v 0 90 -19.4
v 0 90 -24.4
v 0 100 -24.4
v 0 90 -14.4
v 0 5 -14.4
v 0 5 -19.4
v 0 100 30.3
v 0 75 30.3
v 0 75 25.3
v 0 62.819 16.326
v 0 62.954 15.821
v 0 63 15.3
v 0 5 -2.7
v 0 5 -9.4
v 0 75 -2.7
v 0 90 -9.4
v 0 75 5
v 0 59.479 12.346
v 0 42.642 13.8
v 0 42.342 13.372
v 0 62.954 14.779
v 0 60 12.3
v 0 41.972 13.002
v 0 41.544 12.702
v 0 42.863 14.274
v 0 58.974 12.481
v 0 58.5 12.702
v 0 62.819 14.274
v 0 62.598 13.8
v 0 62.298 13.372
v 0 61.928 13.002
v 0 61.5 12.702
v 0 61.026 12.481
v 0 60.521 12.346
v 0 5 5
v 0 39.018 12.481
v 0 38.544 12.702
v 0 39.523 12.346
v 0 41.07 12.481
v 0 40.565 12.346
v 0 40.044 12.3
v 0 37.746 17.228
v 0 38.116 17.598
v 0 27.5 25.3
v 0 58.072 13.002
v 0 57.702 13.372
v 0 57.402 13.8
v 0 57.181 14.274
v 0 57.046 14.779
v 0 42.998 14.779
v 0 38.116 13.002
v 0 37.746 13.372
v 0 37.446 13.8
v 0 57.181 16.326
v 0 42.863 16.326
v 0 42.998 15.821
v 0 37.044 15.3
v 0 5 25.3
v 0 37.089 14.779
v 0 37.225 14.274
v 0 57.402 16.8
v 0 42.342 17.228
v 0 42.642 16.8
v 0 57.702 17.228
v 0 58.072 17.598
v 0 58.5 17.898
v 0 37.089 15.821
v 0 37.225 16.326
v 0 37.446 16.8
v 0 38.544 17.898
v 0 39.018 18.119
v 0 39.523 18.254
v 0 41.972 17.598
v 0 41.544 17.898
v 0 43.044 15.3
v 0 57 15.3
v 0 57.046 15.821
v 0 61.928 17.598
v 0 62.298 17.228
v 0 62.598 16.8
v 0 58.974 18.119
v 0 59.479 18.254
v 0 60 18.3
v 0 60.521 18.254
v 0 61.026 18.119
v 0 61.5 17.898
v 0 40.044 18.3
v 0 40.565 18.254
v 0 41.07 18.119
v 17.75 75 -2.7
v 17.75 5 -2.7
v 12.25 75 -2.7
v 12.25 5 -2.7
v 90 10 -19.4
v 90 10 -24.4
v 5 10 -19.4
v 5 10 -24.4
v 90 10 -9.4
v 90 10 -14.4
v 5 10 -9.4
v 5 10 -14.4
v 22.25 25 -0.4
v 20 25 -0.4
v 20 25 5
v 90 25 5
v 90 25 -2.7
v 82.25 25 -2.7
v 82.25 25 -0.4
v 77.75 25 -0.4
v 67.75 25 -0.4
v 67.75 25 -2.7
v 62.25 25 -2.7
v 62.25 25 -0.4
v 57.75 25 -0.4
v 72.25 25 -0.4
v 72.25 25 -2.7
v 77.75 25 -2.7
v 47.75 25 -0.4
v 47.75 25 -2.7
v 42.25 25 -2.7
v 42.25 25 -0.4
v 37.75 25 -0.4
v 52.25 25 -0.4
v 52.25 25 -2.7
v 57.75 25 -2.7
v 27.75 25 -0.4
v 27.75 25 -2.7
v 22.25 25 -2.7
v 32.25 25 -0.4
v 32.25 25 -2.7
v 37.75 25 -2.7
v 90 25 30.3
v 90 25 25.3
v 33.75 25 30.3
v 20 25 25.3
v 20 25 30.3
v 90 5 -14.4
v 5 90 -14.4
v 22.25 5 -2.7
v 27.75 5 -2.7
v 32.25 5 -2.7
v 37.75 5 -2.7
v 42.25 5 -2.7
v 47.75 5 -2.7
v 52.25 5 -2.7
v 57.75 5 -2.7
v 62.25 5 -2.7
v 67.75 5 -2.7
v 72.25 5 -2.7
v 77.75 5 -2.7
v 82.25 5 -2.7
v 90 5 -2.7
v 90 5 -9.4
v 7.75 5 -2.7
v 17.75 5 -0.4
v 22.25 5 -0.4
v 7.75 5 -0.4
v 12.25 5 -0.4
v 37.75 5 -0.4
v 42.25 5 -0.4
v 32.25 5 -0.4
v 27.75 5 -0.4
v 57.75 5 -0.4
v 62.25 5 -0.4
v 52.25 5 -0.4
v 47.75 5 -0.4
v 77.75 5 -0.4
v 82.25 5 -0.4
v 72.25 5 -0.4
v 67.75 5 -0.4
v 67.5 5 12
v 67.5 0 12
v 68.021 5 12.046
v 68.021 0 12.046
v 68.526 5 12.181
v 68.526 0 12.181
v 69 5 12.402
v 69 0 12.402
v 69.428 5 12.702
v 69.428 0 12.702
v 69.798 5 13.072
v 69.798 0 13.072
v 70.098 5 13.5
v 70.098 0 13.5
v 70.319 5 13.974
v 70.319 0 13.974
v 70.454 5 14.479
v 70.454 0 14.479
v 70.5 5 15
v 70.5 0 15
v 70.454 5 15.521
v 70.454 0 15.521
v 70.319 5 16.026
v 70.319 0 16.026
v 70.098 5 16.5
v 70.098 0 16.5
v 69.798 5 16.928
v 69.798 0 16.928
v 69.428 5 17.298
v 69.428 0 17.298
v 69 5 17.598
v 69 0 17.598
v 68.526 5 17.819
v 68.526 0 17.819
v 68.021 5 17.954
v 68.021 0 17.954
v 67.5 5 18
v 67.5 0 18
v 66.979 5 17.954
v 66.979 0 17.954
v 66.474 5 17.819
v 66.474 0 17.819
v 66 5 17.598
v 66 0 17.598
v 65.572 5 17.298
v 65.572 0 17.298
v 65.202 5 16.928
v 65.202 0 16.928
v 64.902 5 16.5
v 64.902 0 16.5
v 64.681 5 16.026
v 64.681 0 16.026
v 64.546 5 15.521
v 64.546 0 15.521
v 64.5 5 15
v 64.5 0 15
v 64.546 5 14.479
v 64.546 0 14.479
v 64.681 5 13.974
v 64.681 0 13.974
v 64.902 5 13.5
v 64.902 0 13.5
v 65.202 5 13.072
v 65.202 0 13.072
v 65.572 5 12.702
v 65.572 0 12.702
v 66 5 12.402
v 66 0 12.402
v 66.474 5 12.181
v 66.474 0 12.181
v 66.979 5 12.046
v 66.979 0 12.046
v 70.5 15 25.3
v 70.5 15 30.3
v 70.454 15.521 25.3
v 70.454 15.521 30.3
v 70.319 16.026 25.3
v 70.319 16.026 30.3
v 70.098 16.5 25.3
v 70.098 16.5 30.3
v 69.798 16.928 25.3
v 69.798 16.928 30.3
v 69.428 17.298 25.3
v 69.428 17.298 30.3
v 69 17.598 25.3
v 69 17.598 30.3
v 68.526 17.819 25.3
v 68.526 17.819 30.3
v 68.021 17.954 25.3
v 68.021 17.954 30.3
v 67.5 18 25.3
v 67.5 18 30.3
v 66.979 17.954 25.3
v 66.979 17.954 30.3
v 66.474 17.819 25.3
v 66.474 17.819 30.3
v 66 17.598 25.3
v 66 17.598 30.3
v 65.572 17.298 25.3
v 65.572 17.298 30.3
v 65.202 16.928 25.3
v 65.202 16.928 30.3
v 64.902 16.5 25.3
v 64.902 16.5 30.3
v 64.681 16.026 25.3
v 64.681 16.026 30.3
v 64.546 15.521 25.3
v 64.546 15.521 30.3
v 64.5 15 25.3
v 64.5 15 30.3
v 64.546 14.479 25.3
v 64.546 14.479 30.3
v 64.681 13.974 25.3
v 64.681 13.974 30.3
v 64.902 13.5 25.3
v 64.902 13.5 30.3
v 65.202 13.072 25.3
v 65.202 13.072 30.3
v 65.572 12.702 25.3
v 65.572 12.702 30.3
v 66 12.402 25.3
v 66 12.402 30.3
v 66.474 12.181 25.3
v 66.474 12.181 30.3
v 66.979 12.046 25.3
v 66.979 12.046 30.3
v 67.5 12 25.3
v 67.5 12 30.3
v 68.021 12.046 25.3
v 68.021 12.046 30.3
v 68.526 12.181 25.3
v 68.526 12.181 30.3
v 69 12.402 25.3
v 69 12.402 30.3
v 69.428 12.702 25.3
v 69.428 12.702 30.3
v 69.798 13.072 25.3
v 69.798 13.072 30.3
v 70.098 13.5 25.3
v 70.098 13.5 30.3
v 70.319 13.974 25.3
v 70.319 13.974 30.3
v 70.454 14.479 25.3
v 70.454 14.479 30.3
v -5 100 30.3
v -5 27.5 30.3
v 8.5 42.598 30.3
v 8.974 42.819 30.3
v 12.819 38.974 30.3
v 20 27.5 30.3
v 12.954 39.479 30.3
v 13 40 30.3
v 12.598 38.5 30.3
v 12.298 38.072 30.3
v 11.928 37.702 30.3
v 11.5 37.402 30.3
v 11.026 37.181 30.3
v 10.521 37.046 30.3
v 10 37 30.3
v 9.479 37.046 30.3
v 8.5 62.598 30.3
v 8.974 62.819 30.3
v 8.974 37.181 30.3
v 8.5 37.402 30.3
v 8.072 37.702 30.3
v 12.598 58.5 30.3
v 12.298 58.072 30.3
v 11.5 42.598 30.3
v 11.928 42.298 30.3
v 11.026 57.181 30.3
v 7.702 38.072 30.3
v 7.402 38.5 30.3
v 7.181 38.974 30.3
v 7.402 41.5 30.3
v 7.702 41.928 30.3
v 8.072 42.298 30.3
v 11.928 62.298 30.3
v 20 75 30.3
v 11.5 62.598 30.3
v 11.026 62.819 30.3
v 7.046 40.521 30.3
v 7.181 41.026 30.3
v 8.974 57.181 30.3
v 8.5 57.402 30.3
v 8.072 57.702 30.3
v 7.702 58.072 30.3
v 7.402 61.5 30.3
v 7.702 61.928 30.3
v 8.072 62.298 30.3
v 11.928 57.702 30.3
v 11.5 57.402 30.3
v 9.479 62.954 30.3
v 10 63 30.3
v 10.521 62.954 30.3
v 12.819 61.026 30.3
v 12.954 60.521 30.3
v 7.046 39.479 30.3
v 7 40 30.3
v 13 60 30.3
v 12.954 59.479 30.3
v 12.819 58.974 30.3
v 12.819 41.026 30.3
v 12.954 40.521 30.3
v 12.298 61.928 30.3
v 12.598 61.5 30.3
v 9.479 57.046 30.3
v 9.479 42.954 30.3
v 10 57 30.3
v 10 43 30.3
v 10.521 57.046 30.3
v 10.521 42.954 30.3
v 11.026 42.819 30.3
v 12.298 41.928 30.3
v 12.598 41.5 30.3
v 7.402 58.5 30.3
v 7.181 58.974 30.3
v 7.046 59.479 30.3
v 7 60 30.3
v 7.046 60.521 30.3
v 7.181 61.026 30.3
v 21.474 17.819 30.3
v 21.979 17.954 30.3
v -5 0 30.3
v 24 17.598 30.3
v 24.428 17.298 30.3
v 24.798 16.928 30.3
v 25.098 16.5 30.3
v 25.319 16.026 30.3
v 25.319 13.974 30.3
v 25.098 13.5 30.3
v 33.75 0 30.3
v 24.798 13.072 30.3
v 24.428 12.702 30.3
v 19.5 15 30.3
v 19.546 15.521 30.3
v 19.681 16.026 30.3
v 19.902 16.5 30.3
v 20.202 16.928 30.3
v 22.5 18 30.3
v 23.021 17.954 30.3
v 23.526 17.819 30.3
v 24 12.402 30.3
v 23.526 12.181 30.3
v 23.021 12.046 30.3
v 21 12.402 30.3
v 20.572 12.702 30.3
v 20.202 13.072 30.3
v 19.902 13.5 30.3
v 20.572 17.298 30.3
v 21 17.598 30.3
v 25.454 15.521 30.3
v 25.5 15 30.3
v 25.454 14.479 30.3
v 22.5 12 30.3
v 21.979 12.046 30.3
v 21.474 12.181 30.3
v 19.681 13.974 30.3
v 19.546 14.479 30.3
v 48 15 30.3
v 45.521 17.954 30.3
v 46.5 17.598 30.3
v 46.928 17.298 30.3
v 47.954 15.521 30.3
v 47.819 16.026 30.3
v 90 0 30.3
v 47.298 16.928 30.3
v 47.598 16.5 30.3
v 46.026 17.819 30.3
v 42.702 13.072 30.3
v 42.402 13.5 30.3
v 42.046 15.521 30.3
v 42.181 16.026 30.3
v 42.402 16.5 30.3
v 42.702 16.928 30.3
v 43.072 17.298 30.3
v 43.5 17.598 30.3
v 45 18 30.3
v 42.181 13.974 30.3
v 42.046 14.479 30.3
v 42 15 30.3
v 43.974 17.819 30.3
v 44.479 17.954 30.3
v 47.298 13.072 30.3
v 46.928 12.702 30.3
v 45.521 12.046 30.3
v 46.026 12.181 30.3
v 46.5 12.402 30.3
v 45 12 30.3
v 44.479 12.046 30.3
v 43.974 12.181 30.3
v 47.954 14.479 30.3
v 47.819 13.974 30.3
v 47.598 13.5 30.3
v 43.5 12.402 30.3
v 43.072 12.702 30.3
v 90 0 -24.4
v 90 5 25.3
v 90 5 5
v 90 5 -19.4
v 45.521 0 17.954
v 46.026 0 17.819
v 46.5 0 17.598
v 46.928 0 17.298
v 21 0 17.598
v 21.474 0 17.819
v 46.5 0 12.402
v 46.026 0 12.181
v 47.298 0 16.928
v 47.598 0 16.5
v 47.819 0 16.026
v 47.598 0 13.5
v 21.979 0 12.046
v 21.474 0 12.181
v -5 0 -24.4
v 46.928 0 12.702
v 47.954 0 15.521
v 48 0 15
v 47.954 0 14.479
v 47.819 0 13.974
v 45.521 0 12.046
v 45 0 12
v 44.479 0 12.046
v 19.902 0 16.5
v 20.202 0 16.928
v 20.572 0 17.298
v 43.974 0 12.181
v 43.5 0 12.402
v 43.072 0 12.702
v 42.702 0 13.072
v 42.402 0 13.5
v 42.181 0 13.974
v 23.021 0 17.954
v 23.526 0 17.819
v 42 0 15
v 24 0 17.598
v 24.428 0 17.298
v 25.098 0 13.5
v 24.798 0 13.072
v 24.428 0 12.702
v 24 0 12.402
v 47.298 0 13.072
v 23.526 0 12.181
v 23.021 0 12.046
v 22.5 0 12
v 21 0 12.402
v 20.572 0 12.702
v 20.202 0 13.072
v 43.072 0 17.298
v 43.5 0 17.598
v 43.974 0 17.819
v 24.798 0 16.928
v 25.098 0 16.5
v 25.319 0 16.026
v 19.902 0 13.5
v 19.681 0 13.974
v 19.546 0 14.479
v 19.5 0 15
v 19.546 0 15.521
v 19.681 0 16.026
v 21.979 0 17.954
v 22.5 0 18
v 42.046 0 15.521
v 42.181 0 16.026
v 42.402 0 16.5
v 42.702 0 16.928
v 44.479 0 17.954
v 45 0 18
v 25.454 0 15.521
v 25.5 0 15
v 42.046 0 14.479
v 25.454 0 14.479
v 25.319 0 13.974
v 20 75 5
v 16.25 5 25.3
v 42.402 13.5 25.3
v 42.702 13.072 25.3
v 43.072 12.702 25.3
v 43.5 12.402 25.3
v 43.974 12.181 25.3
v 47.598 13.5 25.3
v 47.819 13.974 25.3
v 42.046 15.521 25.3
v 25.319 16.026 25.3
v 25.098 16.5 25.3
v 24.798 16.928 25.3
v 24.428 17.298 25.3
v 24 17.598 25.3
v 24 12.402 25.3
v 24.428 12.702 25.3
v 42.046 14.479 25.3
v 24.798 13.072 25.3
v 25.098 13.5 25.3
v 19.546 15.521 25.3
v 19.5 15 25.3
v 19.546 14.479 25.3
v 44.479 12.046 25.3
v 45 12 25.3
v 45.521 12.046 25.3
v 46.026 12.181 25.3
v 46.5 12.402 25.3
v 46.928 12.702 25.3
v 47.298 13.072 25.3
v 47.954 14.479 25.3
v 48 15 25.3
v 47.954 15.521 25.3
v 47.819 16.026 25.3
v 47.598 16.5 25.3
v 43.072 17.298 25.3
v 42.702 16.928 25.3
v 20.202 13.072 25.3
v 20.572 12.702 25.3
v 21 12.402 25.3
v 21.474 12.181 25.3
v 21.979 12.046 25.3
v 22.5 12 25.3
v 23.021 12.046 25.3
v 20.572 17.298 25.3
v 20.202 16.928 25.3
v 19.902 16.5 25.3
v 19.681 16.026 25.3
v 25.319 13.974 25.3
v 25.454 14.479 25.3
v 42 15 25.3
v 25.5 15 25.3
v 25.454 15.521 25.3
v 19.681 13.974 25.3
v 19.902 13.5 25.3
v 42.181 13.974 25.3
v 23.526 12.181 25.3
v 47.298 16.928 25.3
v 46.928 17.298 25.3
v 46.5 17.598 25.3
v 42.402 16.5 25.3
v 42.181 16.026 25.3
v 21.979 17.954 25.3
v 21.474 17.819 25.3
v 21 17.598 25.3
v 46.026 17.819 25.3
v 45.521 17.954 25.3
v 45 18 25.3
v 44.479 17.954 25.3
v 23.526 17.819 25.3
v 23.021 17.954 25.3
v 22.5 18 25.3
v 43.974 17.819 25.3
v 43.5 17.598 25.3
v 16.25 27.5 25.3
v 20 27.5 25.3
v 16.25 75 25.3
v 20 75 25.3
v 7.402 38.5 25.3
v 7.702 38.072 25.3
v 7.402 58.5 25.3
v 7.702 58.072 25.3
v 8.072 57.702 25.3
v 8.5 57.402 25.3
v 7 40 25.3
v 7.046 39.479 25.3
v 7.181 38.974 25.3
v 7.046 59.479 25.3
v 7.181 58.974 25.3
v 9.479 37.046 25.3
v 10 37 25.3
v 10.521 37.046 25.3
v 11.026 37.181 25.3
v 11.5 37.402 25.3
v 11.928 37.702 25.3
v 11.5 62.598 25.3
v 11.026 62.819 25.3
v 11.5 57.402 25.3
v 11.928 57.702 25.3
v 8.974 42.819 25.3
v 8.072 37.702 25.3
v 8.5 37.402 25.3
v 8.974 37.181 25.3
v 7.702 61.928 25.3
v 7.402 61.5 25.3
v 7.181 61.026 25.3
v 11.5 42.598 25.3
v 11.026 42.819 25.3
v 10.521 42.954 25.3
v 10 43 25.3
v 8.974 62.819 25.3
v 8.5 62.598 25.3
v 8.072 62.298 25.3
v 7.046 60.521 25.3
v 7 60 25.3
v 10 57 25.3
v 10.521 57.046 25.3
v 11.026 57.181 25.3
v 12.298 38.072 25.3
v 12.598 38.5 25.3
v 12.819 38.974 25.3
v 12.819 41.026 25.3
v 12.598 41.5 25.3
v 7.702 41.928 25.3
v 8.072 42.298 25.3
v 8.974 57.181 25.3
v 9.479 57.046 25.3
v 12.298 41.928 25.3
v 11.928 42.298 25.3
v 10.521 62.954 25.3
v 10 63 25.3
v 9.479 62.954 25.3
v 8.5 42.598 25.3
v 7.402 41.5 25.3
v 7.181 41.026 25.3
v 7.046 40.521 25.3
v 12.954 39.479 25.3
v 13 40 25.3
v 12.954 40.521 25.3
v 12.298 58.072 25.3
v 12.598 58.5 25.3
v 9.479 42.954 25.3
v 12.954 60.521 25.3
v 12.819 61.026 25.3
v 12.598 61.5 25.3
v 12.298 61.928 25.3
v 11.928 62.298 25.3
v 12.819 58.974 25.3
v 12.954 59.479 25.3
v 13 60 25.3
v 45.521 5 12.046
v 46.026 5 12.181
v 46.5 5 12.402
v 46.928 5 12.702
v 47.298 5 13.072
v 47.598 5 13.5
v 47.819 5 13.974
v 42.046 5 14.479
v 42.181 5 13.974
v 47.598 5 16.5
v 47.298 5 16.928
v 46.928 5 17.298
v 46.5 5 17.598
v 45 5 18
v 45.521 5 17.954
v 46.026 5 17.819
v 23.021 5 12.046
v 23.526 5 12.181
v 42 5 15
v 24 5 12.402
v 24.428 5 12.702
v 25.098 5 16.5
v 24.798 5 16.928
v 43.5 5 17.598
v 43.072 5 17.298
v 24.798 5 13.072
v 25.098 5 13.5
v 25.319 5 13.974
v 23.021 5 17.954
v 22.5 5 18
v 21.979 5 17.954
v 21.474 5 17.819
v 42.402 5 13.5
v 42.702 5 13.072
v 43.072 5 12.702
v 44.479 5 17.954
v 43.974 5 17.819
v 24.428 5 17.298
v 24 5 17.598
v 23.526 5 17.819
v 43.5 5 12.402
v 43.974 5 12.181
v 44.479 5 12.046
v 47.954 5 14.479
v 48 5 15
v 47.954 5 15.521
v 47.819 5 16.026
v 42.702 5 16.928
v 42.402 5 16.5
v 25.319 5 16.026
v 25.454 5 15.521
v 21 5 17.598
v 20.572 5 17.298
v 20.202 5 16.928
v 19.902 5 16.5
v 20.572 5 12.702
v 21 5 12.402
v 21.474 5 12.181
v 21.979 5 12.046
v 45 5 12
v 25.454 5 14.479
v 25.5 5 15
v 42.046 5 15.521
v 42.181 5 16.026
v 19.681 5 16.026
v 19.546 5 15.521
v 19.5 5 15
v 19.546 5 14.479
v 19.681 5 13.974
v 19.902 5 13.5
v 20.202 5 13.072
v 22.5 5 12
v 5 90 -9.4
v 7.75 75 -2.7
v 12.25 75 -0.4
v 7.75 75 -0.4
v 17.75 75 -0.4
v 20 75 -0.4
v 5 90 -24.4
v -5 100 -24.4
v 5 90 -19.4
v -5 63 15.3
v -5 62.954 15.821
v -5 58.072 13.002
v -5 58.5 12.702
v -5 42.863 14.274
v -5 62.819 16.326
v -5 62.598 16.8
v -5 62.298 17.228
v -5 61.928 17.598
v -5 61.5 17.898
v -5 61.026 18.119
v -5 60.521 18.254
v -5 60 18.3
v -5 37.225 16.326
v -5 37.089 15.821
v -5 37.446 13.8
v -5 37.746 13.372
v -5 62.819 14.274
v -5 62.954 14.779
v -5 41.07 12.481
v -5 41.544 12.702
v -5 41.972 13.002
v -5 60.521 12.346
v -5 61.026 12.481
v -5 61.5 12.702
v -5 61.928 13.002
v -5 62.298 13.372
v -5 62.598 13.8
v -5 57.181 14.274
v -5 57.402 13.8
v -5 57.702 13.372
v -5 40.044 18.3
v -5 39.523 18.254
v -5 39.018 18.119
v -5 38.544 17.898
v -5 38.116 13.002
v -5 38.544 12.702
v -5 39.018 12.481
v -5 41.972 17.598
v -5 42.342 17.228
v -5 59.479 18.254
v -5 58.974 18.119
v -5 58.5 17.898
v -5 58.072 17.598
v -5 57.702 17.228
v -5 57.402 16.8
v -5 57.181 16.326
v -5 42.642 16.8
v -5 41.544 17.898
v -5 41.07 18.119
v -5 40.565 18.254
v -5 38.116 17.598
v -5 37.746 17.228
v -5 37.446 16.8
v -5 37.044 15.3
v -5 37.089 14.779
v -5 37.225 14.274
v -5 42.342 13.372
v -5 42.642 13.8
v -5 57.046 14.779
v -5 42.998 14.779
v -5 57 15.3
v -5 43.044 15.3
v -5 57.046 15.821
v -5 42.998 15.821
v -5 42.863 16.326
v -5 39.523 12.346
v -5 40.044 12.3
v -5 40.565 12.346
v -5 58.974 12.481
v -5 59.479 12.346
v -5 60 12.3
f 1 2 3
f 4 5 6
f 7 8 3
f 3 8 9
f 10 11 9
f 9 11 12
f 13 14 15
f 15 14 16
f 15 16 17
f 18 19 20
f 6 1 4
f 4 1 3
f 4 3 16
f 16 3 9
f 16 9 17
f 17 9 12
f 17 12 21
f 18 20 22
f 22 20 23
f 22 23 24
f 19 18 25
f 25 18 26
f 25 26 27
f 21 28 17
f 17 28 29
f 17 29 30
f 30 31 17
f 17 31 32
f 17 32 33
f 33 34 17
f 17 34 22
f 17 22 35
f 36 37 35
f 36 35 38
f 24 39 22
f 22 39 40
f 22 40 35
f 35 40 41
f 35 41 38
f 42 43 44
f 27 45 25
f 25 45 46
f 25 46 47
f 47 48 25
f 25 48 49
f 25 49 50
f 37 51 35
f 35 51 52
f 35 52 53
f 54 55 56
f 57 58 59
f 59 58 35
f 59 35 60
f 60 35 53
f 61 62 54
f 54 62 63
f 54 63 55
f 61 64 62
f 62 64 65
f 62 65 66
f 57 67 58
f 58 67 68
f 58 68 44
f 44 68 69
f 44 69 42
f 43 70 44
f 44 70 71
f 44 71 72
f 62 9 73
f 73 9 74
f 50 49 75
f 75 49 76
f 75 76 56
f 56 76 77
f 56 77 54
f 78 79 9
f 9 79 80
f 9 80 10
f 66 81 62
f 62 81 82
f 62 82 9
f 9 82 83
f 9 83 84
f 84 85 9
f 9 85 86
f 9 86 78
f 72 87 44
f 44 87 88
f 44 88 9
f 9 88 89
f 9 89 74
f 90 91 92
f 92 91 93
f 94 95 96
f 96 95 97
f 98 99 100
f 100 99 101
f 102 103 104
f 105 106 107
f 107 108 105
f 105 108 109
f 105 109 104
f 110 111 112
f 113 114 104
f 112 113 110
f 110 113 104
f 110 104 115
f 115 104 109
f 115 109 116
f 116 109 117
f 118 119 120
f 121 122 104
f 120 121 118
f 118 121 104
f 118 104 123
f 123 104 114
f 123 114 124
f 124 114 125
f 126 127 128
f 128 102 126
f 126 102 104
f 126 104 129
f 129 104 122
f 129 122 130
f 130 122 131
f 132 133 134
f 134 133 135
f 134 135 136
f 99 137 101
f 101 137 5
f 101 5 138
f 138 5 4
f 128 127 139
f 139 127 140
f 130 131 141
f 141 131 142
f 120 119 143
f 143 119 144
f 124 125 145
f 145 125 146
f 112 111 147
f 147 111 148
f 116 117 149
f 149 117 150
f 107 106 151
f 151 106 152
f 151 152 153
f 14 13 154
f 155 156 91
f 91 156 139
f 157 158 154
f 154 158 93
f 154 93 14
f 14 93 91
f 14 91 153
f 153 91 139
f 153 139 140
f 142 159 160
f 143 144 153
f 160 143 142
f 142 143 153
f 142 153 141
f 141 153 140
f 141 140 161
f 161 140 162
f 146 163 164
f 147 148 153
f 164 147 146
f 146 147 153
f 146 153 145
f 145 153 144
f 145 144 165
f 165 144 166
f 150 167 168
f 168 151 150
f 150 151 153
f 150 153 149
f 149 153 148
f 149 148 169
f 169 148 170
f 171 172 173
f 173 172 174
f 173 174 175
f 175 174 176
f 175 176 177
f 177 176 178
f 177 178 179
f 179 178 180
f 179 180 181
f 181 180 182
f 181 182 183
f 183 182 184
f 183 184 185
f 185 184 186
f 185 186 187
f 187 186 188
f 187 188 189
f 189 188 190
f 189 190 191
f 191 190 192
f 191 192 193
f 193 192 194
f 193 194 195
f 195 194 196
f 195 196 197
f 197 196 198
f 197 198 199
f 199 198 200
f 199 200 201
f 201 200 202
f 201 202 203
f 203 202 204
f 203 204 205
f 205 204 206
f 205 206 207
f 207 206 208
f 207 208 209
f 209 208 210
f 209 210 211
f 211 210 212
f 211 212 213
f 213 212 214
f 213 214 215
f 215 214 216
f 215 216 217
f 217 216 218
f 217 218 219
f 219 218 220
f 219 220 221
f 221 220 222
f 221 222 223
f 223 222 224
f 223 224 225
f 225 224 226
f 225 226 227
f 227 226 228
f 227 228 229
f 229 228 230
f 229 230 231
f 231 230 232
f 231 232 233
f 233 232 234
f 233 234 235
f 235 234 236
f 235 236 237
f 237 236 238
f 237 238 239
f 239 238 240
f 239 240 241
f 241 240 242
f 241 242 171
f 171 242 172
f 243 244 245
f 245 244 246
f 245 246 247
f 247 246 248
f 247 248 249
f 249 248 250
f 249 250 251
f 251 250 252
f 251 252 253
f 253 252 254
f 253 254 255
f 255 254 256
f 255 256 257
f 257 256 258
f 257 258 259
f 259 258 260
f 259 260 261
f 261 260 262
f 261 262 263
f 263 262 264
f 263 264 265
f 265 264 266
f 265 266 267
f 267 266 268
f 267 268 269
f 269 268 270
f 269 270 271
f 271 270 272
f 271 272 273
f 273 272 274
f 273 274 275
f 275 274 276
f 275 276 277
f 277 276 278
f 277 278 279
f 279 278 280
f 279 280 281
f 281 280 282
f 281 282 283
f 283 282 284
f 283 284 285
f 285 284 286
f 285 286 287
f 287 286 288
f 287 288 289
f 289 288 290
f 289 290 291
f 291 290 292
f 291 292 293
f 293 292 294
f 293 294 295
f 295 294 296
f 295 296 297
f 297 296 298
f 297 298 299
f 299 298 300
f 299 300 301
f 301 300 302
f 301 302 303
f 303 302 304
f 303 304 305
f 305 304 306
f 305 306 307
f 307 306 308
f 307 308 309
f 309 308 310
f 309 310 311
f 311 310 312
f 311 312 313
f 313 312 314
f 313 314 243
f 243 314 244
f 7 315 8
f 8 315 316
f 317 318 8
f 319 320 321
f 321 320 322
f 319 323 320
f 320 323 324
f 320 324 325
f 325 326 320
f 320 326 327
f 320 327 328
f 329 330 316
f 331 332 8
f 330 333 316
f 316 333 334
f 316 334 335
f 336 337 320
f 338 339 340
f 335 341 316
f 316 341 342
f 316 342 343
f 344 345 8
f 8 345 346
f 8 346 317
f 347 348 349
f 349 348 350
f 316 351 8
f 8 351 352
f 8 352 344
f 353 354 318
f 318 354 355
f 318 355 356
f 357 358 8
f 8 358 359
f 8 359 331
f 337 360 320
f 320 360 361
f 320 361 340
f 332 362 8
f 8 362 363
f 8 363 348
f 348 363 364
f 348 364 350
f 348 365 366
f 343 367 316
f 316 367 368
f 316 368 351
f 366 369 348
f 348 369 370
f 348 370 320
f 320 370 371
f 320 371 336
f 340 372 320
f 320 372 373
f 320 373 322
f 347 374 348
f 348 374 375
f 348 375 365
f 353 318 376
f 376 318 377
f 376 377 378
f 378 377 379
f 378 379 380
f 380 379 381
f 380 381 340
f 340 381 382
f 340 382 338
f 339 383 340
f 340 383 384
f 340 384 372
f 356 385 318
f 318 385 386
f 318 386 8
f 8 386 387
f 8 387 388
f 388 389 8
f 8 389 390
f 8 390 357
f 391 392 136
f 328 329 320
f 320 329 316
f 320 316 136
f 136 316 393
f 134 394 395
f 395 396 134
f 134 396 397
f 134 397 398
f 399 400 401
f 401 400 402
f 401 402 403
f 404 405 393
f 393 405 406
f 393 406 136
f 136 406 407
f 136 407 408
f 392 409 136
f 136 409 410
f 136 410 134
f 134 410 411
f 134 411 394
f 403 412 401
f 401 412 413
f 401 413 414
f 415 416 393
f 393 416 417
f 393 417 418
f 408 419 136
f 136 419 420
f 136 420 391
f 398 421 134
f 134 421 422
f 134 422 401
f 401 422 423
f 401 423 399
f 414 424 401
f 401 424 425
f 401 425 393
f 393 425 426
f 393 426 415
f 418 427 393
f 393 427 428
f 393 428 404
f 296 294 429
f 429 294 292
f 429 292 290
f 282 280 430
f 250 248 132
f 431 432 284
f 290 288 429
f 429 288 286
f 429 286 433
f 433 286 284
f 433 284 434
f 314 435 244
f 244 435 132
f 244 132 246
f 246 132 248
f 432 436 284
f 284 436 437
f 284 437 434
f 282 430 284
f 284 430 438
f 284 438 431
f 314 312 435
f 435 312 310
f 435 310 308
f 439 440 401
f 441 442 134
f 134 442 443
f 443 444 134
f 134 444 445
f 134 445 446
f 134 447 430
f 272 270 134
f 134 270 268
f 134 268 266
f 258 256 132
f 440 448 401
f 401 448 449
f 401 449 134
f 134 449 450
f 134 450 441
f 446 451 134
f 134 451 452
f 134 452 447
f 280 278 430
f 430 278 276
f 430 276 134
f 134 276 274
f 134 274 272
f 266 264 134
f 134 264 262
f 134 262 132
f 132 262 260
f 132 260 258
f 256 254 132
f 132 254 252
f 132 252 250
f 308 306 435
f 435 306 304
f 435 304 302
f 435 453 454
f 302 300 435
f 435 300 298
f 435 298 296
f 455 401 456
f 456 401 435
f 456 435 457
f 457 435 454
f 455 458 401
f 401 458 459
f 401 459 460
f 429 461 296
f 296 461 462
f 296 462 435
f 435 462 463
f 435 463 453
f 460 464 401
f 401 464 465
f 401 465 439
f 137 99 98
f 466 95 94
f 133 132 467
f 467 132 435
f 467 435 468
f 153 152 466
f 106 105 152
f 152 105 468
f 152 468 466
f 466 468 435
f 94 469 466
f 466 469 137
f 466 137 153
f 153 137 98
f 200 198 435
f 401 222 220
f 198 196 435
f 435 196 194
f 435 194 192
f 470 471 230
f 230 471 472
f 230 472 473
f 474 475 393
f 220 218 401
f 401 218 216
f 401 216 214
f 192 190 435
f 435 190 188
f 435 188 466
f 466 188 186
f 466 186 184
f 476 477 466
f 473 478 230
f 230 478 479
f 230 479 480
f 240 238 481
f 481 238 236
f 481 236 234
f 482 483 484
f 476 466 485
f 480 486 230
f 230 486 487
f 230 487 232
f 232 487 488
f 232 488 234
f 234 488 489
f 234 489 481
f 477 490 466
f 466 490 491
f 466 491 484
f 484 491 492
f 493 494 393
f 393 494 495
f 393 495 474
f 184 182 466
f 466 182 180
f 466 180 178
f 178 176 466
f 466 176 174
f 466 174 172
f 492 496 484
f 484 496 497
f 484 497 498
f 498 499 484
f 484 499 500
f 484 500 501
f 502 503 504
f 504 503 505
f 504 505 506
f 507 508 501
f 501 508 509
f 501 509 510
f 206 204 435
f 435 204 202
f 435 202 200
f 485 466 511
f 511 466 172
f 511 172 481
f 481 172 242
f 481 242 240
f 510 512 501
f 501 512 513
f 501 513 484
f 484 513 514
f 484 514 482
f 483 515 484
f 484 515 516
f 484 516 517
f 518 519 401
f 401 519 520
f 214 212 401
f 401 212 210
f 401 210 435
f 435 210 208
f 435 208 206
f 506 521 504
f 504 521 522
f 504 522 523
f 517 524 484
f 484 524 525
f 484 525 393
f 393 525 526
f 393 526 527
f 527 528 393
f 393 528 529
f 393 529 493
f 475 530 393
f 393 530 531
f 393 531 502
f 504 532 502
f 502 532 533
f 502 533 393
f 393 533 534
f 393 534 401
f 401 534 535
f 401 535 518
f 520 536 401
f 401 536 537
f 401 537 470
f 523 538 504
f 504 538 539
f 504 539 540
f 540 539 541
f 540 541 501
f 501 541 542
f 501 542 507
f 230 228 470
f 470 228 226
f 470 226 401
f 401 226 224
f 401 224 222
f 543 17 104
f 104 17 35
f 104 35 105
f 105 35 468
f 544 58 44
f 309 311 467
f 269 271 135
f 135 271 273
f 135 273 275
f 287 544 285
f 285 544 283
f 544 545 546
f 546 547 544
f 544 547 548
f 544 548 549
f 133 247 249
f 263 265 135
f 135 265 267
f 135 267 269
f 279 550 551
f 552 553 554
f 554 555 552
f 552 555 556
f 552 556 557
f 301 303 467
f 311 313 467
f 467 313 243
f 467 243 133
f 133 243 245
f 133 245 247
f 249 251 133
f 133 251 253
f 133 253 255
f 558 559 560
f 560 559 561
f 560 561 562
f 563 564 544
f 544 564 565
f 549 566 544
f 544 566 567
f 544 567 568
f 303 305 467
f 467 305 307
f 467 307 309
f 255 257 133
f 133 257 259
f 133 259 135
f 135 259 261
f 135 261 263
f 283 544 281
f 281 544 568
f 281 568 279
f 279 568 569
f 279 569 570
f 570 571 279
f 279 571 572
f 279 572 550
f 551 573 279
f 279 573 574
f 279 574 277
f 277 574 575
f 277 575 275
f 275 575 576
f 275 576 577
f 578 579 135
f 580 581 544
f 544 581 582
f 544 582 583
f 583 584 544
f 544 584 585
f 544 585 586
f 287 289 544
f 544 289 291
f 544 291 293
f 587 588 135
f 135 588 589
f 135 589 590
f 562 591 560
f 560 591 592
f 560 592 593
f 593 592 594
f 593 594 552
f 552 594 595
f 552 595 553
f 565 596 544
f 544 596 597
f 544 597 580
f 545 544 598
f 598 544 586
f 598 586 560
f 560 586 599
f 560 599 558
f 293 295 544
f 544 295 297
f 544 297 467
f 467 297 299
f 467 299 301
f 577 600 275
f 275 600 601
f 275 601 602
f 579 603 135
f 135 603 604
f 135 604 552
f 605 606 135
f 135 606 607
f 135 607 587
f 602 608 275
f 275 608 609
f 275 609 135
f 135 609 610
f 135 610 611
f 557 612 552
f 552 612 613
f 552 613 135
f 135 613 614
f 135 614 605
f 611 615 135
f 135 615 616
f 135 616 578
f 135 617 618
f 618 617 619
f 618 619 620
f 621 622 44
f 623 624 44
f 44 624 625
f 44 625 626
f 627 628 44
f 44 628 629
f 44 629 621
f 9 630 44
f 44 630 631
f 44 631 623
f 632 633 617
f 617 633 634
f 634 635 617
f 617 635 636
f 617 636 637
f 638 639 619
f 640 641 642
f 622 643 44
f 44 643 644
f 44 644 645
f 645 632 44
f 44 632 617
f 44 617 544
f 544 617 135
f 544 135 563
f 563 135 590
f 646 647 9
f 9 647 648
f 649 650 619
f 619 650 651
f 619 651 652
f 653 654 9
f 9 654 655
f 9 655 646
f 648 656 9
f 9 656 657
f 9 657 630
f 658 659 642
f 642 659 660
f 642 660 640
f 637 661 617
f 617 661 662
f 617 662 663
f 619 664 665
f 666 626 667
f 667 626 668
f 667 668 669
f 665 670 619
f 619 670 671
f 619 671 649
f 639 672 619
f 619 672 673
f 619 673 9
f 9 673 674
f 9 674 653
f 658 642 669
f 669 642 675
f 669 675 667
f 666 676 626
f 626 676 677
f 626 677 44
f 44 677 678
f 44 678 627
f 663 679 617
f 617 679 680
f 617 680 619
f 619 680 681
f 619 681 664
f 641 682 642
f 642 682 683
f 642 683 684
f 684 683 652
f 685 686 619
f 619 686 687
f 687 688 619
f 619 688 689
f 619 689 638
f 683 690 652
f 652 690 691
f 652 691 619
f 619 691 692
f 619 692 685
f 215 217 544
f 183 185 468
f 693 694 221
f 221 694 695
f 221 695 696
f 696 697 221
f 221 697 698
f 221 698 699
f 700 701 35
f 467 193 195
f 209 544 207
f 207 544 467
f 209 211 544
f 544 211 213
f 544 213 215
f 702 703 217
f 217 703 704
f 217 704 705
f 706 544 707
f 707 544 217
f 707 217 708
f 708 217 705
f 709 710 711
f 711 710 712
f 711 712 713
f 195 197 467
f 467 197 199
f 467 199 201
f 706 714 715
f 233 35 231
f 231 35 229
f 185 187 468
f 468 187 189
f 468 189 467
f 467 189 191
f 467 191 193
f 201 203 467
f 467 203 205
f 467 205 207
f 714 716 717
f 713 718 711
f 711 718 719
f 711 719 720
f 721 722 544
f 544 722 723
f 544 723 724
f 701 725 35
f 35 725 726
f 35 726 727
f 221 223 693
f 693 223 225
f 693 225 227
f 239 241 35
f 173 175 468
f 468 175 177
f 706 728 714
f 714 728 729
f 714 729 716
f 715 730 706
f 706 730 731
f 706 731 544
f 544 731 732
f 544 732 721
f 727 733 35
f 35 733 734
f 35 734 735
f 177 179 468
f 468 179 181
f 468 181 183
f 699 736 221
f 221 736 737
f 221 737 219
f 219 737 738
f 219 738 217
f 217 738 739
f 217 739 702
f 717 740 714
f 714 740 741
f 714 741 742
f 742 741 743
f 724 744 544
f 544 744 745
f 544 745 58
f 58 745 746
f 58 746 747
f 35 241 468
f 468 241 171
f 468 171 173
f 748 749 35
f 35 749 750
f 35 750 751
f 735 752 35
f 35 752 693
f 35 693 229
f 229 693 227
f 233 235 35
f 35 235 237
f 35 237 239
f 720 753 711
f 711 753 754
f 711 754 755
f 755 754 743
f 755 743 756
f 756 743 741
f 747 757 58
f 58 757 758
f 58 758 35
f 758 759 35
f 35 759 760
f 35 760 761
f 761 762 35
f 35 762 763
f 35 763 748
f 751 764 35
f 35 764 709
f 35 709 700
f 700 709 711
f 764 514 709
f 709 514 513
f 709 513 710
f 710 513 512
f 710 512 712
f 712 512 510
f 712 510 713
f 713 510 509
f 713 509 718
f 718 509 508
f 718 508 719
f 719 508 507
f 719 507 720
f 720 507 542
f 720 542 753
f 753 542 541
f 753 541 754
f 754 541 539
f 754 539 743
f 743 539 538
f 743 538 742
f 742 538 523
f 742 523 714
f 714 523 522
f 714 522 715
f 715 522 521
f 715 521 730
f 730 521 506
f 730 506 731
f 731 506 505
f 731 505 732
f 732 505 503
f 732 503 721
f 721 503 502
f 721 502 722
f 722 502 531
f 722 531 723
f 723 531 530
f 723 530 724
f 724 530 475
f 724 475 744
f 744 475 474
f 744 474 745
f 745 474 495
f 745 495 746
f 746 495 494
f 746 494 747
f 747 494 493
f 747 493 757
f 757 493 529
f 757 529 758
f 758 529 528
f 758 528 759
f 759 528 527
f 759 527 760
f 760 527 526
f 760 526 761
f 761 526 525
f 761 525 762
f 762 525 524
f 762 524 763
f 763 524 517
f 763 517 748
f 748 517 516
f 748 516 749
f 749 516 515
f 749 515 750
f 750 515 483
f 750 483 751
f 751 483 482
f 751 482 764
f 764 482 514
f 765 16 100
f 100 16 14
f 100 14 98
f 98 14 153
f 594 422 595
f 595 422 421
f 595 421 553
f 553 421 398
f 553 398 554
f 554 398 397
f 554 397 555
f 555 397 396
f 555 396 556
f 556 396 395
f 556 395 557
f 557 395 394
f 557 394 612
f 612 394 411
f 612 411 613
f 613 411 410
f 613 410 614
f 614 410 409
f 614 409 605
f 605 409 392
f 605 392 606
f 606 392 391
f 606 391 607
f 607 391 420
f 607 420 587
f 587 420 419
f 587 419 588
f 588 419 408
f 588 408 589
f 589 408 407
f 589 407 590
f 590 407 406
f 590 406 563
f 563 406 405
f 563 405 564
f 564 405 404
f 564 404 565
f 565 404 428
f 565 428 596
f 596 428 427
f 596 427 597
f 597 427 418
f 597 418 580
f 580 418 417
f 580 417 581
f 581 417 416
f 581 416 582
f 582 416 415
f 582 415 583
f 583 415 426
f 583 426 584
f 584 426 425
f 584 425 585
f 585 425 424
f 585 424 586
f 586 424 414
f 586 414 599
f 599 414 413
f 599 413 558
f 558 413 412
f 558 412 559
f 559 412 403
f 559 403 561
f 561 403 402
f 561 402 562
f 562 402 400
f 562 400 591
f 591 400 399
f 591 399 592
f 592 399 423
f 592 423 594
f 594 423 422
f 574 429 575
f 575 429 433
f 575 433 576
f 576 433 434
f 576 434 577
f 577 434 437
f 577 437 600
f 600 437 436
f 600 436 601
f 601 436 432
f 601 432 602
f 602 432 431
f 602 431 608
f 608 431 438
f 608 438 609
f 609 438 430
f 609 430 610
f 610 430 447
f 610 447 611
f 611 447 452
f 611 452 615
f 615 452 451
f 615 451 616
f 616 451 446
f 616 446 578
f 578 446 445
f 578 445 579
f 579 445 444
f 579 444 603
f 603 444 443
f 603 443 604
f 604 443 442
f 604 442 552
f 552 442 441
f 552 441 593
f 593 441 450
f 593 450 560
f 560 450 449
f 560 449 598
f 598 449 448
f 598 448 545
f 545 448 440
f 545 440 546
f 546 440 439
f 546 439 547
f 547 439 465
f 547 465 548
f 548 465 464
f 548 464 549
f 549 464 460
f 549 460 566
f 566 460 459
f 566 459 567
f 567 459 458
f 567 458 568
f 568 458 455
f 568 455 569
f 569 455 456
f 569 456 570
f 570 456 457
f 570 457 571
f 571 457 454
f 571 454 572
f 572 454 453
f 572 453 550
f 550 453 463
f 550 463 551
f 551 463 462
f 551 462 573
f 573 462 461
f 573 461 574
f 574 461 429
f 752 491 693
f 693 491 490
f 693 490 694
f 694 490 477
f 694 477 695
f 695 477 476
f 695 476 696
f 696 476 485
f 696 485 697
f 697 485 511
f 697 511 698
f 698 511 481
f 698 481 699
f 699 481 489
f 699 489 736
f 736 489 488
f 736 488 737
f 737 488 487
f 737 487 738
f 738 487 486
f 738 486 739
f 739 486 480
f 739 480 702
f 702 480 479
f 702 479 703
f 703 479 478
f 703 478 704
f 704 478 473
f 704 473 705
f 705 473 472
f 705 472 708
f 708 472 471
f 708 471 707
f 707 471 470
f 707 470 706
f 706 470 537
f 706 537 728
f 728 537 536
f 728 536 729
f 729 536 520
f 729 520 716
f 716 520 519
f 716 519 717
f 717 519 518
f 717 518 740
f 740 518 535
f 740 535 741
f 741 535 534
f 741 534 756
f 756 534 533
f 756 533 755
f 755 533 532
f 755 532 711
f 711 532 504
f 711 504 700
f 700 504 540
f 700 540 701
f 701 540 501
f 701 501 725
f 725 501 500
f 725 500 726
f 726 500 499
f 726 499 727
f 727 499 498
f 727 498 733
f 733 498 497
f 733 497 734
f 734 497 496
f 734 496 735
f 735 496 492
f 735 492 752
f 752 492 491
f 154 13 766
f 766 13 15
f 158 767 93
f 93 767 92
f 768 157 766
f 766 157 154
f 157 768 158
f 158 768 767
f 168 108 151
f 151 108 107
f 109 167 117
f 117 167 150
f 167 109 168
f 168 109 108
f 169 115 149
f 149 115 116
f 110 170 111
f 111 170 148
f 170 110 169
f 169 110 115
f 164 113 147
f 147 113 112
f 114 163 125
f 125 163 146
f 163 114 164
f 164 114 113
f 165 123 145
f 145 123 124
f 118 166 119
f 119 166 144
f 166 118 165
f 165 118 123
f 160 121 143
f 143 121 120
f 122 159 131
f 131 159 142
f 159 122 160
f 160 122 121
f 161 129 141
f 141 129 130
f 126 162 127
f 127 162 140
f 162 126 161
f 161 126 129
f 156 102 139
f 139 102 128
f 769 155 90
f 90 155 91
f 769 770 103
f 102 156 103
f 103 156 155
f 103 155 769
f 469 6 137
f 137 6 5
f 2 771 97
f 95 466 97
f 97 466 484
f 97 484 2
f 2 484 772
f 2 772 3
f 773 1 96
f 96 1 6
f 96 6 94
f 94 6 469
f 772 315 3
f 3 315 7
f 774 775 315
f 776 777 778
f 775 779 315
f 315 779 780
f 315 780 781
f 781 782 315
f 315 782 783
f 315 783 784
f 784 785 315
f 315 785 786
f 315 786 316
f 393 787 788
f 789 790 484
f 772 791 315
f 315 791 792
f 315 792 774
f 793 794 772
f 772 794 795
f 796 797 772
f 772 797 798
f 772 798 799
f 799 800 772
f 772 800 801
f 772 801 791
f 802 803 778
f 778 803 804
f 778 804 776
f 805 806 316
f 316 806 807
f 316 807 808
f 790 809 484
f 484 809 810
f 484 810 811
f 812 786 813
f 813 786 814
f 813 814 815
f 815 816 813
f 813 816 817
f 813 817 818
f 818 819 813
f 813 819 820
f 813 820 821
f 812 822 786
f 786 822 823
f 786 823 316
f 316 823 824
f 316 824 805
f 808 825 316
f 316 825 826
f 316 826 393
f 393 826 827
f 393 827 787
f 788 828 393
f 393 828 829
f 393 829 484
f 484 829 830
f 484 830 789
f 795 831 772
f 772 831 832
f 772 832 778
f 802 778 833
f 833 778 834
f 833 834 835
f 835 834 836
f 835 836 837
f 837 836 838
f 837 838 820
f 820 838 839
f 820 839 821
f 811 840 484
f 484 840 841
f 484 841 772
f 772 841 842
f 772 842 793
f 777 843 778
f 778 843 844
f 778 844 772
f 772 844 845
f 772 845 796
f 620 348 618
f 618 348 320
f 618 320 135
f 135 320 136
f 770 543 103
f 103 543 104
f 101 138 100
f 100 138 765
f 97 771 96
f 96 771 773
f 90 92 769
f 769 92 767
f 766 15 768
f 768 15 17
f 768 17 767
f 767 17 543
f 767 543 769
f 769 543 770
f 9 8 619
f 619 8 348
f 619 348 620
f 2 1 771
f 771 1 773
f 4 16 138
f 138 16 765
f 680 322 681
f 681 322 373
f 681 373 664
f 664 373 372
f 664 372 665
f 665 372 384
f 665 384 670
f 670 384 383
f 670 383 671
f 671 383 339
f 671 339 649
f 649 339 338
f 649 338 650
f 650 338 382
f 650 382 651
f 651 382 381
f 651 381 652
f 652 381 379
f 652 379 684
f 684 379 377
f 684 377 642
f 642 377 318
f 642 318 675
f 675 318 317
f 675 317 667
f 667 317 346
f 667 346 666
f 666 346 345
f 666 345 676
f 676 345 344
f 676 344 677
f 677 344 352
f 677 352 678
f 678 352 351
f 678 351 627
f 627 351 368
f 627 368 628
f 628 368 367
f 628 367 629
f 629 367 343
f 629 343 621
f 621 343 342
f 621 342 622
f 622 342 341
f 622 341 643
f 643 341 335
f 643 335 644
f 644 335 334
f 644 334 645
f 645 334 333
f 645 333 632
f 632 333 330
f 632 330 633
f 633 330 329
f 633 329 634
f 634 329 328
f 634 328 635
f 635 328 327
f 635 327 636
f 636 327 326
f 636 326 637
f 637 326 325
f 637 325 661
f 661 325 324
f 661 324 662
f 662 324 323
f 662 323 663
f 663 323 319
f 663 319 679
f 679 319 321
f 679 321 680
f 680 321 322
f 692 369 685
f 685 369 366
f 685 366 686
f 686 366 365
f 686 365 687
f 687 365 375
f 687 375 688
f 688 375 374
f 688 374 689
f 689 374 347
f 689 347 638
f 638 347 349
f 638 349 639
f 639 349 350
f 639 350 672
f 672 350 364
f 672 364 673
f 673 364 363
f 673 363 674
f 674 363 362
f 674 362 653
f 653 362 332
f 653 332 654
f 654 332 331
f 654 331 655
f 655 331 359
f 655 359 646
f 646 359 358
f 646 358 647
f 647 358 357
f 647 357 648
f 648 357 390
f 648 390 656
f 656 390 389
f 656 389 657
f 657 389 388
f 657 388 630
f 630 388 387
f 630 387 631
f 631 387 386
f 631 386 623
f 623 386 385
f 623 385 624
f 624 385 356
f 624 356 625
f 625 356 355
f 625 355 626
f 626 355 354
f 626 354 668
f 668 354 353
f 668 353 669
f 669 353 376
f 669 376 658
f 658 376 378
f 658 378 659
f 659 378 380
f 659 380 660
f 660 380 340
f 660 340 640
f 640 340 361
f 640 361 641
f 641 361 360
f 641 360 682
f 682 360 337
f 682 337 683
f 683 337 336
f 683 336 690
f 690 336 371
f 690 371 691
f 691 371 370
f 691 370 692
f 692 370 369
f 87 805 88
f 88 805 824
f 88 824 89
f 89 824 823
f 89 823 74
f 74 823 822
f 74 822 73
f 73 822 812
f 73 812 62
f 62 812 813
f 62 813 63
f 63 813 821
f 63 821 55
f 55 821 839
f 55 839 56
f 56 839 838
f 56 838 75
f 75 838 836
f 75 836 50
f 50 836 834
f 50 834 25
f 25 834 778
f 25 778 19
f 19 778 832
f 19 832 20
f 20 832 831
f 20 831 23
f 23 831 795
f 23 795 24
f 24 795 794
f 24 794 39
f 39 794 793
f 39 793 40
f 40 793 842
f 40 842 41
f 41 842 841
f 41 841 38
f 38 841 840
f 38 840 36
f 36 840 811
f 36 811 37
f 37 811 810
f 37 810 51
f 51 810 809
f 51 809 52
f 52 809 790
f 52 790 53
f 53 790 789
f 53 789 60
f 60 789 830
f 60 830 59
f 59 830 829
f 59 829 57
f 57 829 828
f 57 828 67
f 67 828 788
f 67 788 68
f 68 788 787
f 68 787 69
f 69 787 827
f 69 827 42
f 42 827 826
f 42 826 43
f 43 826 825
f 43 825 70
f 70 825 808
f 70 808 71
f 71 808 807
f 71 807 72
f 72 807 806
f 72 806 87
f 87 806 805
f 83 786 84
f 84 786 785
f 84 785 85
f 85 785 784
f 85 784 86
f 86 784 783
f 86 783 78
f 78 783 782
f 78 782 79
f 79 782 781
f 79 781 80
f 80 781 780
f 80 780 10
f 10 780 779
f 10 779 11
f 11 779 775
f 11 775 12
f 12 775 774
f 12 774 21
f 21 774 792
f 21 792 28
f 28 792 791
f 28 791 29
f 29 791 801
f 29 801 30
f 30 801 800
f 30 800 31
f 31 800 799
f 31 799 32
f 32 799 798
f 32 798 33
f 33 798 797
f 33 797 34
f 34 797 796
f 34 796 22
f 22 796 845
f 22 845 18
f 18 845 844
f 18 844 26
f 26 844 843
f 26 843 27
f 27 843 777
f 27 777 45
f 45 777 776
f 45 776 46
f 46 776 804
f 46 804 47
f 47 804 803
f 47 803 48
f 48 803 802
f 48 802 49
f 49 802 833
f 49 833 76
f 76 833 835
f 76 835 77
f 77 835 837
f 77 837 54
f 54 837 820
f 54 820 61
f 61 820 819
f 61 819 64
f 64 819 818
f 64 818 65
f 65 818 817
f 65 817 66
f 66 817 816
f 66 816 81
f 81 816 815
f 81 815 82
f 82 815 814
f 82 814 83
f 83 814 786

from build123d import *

# Parameters (mm, degrees)
SKETCH1_W              = 90
SKETCH1_H              = 30.3
BOSS_EXTRUDE1_DEPTH    = 25
SKETCH2_W              = 90
SKETCH2_H              = 20.3
F_2020_SLOT_20_3_DEPTH = 20
SKETCH3_R              = 3
CUT_EXTRUDE2_DEPTH     = 99.19923625
SKETCH5_W              = 90
SKETCH5_H              = 5
BOSS_EXTRUDE2_DEPTH    = 9.4
SKETCH6_W              = 90
SKETCH6_H              = 10
BOSS_EXTRUDE3_DEPTH    = 5
SKETCH7_R              = 3
CUT_EXTRUDE4_DEPTH     = 5
LPATTERN1_COUNT        = 3
LPATTERN1_PITCH        = 22.5
LPATTERN2_COUNT        = 3
LPATTERN2_PITCH        = 22.5
SKETCH10_W             = 90
SKETCH10_H             = 20
BOSS_EXTRUDE4_DEPTH    = 2.7
SKETCH11_W             = 4.5
SKETCH11_H             = 20
CUT_EXTRUDE5_DEPTH     = 2.3
LPATTERN3_COUNT        = 8
LPATTERN3_PITCH        = 10
SKETCH12_W             = 90
SKETCH12_H             = 5
DIFFUSER_SLOT_DEPTH    = 5
SKETCH13_W             = 90
SKETCH13_H             = 10
BOSS_EXTRUDE6_DEPTH    = 5
SKETCH14_W             = 54.7
SKETCH14_H             = 100
BOSS_EXTRUDE7_DEPTH    = 5
SKETCH15_W             = 7.7
SKETCH15_H             = 60
SKETCH15_W_2           = 5
BOSS_EXTRUDE8_DEPTH    = 20
SKETCH16_W             = 5
SKETCH16_H             = 75
BOSS_EXTRUDE9_DEPTH    = 5
SKETCH17_W             = 20
SKETCH17_H             = 25
CUT_EXTRUDE6_DEPTH     = 35
SKETCH18_W             = 4.5
SKETCH18_H             = 50
SKETCH18_W_2           = 2.25
CUT_EXTRUDE7_DEPTH     = 2.3
SKETCH19_W             = 5
SKETCH19_H             = 5
BOSS_EXTRUDE10_DEPTH   = 5
SKETCH20_R             = 3
CUT_EXTRUDE8_DEPTH     = 5
SKETCH22_R             = 3
CUT_EXTRUDE9_DEPTH     = 5


with BuildPart() as part:
    # Sketch1 → Boss-Extrude1 (new body)
    with BuildSketch(Plane(origin=(0, 0, 0), x_dir=(1, 0, 0), z_dir=(0, 1, 0))):
        with Locations((45, -15.15)):
            Rectangle(SKETCH1_W, SKETCH1_H)
    extrude(amount=BOSS_EXTRUDE1_DEPTH)

    # Sketch2 → 2020_Slot_20.3 (cut)
    with BuildSketch(Plane(origin=(0, 25, 0), x_dir=(1, 0, 0), z_dir=(0, 1, 0))):
        with Locations((45, -15.15)):
            Rectangle(SKETCH2_W, SKETCH2_H)
    extrude(amount=-F_2020_SLOT_20_3_DEPTH, mode=Mode.SUBTRACT)

    # Sketch3 → Cut-Extrude2 (cut, through all)
    with BuildSketch(Plane(origin=(0, 0, 0), x_dir=(-1, 0, 0), z_dir=(0, -1, 0))):
        with Locations(Location((-22.5, -15, 0), (0, 0, 90))):
            Circle(SKETCH3_R)
    cut_extrude2 = extrude(amount=-CUT_EXTRUDE2_DEPTH, mode=Mode.SUBTRACT)

    # Sketch5 → Boss-Extrude2 (add)
    with BuildSketch(Plane(origin=(0, 0, 0), x_dir=(-1, 0, 0), z_dir=(0, 0, -1))):
        with Locations((-45, 2.5)):
            Rectangle(SKETCH5_W, SKETCH5_H)
    extrude(amount=BOSS_EXTRUDE2_DEPTH)

    # Sketch6 → Boss-Extrude3 (add)
    with BuildSketch(Plane(origin=(0, 0, -9.4), x_dir=(-1, 0, 0), z_dir=(0, 0, -1))):
        with Locations((-45, 5)):
            Rectangle(SKETCH6_W, SKETCH6_H)
    extrude(amount=BOSS_EXTRUDE3_DEPTH)

    # Sketch7 → Cut-Extrude4 (cut)
    with BuildSketch(Plane.XY.offset(30.3)):
        with Locations((22.5, 15)):
            Circle(SKETCH7_R)
    cut_extrude4 = extrude(amount=-CUT_EXTRUDE4_DEPTH, mode=Mode.SUBTRACT)

    # LPattern1: Cut-Extrude4 ×3
    with Locations(*[(i * LPATTERN1_PITCH, 0, 0) for i in range(1, LPATTERN1_COUNT)]):
        add(cut_extrude4, mode=Mode.SUBTRACT)

    # LPattern2: Cut-Extrude2 ×3
    with Locations(*[(i * LPATTERN2_PITCH, 0, 0) for i in range(1, LPATTERN2_COUNT)]):
        add(cut_extrude2, mode=Mode.SUBTRACT)

    # Sketch10 → Boss-Extrude4 (add)
    with BuildSketch(Plane(origin=(0, 0, 0), x_dir=(-1, 0, 0), z_dir=(0, 0, -1))):
        with Locations((-45, 15)):
            Rectangle(SKETCH10_W, SKETCH10_H)
    extrude(amount=BOSS_EXTRUDE4_DEPTH)

    # Sketch11 → Cut-Extrude5 (cut)
    with BuildSketch(Plane(origin=(0, 0, -2.7), x_dir=(-1, 0, 0), z_dir=(0, 0, -1))):
        with Locations((-10, 15)):
            Rectangle(SKETCH11_W, SKETCH11_H)
    cut_extrude5 = extrude(amount=-CUT_EXTRUDE5_DEPTH, mode=Mode.SUBTRACT)

    # LPattern3: Cut-Extrude5 ×8
    with Locations(*[(i * LPATTERN3_PITCH, 0, 0) for i in range(1, LPATTERN3_COUNT)]):
        add(cut_extrude5, mode=Mode.SUBTRACT)

    # Sketch12 → Diffuser_Slot (add)
    with BuildSketch(Plane(origin=(0, 0, -14.4), x_dir=(-1, 0, 0), z_dir=(0, 0, -1))):
        with Locations((-45, 2.5)):
            Rectangle(SKETCH12_W, SKETCH12_H)
    extrude(amount=DIFFUSER_SLOT_DEPTH)

    # Sketch13 → Boss-Extrude6 (add)
    with BuildSketch(Plane(origin=(0, 0, -19.4), x_dir=(-1, 0, 0), z_dir=(0, 0, -1))):
        with Locations((-45, 5)):
            Rectangle(SKETCH13_W, SKETCH13_H)
    extrude(amount=BOSS_EXTRUDE6_DEPTH)

    # Sketch14 → Boss-Extrude7 (add)
    with BuildSketch(Plane.ZY):
        with Locations((2.95, 50)):
            Rectangle(SKETCH14_W, SKETCH14_H)
    extrude(amount=BOSS_EXTRUDE7_DEPTH)

    # Sketch15 → Boss-Extrude8 (add)
    with BuildSketch(Plane(origin=(0, 0, 0), x_dir=(0, 0, -1), z_dir=(1, 0, 0))):
        with Locations((-1.15, 55)):
            Rectangle(SKETCH15_W, SKETCH15_H)
        with Locations((-27.8, 55)):
            Rectangle(SKETCH15_W_2, SKETCH15_H)
    extrude(amount=BOSS_EXTRUDE8_DEPTH)

    # Sketch16 → Boss-Extrude9 (add)
    with BuildSketch(Plane(origin=(0, 0, 0), x_dir=(0, 0, -1), z_dir=(1, 0, 0))):
        with Locations((11.9, 47.5)):
            Rectangle(SKETCH16_W, SKETCH16_H)
        with Locations((21.9, 47.5)):
            Rectangle(SKETCH16_W, SKETCH16_H)
    extrude(amount=BOSS_EXTRUDE9_DEPTH)

    # Sketch17 → Cut-Extrude6 (cut)
    with BuildSketch(Plane.XY.offset(30.3)):
        with Locations((10, 87.5)):
            Rectangle(SKETCH17_W, SKETCH17_H)
    extrude(amount=-CUT_EXTRUDE6_DEPTH, mode=Mode.SUBTRACT)

    # Sketch18 → Cut-Extrude7 (cut)
    with BuildSketch(Plane(origin=(0, 0, -2.7), x_dir=(-1, 0, 0), z_dir=(0, 0, -1))):
        with Locations((-10, 50)):
            Rectangle(SKETCH18_W, SKETCH18_H)
        with Locations((-18.875, 50)):
            Rectangle(SKETCH18_W_2, SKETCH18_H)
    extrude(amount=-CUT_EXTRUDE7_DEPTH, mode=Mode.SUBTRACT)

    # Sketch19 → Boss-Extrude10 (add)
    with BuildSketch(Plane(origin=(0, 85, 0), x_dir=(1, 0, 0), z_dir=(0, 1, 0))):
        with Locations((2.5, 21.9)):
            Rectangle(SKETCH19_W, SKETCH19_H)
        with Locations((2.5, 11.9)):
            Rectangle(SKETCH19_W, SKETCH19_H)
    extrude(amount=BOSS_EXTRUDE10_DEPTH)

    # Sketch20 → Cut-Extrude8 (cut)
    with BuildSketch(Plane.XY.offset(30.3)):
        with Locations((10, 60)):
            Circle(SKETCH20_R)
        with Locations((10, 40)):
            Circle(SKETCH20_R)
    extrude(amount=-CUT_EXTRUDE8_DEPTH, mode=Mode.SUBTRACT)

    # Sketch22 → Cut-Extrude9 (cut)
    with BuildSketch(Plane.ZY.offset(5)):
        with Locations((15.3, 60)):
            Circle(SKETCH22_R)
        with Locations((15.3, 40.043901833)):
            Circle(SKETCH22_R)
    extrude(amount=-CUT_EXTRUDE9_DEPTH, mode=Mode.SUBTRACT)


solid = part.part
